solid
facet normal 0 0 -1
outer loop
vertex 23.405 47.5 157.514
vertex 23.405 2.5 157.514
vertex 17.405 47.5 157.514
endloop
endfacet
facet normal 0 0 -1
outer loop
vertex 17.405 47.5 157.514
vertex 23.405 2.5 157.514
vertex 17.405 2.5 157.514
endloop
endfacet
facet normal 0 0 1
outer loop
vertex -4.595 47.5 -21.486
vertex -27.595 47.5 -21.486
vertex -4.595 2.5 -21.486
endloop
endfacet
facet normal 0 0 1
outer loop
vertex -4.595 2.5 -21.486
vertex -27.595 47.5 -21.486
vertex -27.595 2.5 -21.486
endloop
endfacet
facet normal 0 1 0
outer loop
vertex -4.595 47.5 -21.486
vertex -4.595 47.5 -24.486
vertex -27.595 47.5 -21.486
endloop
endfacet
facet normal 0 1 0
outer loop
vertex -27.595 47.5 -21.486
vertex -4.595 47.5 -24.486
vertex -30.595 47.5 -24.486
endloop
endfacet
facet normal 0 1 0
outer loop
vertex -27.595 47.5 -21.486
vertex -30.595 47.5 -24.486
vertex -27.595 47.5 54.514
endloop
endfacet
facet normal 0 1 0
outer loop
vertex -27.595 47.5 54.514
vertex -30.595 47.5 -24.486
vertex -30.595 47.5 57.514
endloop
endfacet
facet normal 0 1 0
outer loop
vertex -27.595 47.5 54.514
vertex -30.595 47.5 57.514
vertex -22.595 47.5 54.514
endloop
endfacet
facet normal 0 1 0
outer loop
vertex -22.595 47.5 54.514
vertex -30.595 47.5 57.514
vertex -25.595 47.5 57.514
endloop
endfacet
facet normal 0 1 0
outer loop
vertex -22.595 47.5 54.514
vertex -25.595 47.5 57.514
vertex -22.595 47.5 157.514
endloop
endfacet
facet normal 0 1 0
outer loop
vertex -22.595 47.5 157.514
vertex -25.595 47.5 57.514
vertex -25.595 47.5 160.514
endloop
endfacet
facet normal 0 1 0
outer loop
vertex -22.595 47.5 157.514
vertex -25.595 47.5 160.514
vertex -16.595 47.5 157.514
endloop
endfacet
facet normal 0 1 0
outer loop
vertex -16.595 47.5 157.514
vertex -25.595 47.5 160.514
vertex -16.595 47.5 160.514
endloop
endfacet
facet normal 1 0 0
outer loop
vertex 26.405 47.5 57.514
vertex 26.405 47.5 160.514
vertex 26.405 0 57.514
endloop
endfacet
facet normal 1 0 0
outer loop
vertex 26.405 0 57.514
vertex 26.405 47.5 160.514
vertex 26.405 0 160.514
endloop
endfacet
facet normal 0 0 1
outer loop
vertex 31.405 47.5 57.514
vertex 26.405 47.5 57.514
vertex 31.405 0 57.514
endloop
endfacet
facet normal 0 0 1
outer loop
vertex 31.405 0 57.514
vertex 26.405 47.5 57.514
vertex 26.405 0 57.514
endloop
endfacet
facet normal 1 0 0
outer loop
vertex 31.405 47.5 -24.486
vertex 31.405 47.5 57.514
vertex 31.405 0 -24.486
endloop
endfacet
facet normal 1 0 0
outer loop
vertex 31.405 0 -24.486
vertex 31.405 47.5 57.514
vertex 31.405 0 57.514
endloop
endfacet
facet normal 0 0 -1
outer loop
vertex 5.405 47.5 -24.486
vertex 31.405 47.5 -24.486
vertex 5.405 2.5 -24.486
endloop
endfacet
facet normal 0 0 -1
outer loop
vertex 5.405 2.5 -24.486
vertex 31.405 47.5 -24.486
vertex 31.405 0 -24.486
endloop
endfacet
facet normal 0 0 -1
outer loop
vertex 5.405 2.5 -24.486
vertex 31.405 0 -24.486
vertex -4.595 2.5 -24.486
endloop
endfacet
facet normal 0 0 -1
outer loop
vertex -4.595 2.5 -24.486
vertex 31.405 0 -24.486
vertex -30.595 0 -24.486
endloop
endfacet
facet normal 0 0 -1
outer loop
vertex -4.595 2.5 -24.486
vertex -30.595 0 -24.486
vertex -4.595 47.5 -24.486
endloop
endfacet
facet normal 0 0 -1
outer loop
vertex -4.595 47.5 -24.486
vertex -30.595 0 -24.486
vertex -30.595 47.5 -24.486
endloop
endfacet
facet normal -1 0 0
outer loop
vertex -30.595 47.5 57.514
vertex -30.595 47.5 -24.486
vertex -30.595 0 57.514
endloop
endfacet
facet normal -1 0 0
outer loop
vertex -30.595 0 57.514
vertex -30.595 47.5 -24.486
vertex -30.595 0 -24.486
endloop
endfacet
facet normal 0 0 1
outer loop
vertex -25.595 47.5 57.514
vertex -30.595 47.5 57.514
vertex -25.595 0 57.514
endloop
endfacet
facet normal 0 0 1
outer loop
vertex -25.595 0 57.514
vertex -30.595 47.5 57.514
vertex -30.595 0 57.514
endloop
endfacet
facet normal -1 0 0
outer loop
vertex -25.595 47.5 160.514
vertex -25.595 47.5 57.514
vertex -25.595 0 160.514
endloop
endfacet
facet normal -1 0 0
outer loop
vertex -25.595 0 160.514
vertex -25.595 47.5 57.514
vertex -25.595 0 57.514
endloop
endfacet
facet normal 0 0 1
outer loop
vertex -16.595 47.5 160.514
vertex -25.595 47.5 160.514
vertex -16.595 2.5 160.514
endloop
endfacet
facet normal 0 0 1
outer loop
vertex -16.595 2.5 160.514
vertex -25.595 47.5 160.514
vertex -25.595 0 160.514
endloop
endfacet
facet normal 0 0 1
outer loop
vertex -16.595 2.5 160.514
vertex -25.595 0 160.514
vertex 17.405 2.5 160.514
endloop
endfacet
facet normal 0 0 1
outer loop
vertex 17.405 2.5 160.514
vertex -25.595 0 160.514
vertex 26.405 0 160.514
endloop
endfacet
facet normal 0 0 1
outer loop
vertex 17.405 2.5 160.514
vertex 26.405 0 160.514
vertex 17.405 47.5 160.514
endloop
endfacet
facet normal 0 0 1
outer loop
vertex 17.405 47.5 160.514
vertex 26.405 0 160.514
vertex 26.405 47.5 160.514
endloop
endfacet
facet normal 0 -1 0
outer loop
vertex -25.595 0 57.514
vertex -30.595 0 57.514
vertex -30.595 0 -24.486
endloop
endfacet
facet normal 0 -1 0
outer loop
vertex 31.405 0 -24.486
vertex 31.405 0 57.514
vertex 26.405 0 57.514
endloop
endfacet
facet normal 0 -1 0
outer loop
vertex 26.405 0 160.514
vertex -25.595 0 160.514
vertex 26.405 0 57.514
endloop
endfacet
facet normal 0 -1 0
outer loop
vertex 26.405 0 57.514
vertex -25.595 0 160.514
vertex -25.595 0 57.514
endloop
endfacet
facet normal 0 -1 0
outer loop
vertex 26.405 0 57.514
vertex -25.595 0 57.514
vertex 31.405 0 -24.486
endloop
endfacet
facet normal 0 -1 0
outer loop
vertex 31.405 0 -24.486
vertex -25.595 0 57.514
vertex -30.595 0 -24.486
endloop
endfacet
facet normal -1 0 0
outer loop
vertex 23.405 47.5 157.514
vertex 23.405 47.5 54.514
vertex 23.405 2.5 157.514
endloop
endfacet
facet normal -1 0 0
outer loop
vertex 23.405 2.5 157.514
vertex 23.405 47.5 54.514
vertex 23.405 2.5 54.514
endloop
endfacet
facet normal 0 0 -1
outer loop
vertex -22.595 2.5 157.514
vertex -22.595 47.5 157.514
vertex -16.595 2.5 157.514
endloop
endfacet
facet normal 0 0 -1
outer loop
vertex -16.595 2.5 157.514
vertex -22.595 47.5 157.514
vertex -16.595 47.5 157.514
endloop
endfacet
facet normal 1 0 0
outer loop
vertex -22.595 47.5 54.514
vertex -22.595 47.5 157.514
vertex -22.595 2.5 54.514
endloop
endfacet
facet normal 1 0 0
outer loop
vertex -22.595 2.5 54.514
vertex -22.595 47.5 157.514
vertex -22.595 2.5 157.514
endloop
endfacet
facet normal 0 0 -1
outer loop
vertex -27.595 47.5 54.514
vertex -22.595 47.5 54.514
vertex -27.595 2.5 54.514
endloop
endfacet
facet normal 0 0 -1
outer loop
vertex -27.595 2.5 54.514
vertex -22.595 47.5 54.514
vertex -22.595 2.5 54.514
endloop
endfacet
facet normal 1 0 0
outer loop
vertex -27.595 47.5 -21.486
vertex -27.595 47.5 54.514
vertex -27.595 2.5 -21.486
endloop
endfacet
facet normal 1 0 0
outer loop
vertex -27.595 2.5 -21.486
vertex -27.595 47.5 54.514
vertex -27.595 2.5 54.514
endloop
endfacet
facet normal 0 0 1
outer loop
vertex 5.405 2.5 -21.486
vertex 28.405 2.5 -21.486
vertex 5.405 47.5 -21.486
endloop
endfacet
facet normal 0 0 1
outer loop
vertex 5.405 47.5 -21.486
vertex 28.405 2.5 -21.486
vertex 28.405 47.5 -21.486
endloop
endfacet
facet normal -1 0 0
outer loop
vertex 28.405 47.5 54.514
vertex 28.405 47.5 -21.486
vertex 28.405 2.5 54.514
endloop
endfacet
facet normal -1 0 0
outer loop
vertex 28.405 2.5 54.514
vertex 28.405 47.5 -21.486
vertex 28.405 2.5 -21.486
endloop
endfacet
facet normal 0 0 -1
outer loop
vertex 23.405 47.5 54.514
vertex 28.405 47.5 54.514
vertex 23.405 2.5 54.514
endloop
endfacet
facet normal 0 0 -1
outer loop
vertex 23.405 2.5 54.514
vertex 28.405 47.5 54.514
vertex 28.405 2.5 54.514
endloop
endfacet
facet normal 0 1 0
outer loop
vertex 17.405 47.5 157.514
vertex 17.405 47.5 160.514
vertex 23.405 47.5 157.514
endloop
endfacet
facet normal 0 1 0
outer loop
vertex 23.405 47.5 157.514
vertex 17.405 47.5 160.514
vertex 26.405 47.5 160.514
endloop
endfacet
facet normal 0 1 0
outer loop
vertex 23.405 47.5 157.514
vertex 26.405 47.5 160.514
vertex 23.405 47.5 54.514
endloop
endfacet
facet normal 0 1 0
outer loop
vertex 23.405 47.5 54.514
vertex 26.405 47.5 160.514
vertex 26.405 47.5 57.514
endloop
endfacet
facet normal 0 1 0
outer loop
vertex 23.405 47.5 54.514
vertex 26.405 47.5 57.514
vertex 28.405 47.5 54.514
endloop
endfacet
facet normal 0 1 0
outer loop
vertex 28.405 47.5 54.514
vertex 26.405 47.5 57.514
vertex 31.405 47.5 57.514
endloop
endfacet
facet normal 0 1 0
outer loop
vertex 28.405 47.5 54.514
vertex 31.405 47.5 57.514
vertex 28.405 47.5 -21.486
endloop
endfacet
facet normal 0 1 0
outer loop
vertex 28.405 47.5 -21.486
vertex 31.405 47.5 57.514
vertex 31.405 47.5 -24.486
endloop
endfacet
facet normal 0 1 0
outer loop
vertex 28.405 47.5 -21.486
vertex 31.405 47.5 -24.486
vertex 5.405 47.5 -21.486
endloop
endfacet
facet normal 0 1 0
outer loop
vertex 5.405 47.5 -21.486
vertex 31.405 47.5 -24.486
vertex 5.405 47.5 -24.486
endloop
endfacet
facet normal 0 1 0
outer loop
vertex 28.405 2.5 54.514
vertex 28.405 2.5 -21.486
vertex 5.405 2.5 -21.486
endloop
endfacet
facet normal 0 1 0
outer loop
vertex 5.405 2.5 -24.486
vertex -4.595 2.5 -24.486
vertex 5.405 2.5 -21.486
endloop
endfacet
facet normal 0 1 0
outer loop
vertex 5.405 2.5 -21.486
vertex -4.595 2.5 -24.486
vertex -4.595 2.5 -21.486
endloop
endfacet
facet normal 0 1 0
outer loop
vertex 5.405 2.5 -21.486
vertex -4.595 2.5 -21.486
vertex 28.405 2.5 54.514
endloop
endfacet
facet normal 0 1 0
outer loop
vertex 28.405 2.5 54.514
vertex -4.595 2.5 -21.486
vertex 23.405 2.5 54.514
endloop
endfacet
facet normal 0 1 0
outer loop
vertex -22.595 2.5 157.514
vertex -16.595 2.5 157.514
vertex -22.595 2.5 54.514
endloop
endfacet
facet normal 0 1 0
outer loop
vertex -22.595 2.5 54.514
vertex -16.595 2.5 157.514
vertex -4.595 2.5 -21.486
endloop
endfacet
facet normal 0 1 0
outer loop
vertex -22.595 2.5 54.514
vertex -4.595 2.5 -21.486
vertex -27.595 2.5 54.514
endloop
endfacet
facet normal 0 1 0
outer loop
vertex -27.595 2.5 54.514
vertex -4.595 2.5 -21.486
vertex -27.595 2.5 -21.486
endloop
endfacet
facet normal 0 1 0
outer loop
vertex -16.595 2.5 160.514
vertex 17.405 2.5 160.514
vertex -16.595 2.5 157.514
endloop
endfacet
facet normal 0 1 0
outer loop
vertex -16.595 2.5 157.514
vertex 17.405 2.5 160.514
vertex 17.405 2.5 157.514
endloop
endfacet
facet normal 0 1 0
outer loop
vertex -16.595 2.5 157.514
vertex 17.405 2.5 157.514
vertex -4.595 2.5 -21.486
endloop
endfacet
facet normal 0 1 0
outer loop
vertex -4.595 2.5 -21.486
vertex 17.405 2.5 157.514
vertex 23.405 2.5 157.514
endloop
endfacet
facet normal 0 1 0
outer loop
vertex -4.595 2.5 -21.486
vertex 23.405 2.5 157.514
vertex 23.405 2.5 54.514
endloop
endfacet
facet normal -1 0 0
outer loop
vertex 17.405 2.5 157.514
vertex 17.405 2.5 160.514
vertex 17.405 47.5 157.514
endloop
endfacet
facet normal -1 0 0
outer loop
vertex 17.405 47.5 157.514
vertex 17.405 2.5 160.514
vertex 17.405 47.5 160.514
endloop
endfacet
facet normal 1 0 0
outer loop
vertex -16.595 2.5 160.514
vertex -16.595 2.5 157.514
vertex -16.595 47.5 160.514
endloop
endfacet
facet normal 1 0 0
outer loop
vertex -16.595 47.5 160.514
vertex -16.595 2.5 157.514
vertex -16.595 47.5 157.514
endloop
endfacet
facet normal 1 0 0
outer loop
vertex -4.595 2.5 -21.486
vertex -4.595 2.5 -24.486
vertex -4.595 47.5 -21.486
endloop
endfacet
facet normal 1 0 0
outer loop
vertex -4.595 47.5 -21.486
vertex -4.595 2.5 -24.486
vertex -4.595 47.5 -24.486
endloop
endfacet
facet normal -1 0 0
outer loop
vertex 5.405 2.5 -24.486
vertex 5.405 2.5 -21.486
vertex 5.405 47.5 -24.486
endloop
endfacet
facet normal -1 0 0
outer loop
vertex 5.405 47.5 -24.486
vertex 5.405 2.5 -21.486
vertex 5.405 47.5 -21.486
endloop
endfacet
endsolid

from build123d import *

# Parameters (mm, degrees)
SKETCH1_W           = 52
SKETCH1_H           = 103
SKETCH1_W_2         = 62
SKETCH1_H_2         = 82
BOSS_EXTRUDE1_DEPTH = 2.5
SKETCH2_W           = 3
SKETCH2_H           = 100
SKETCH2_H_2         = 76
SKETCH2_W_2         = 2
SKETCH2_H_3         = 3
SKETCH2_W_3         = 56
SKETCH2_W_4         = 46
BOSS_EXTRUDE2_DEPTH = 45
SKETCH4_W           = 10
SKETCH4_H           = 3
SKETCH4_W_2         = 34
CUT_EXTRUDE1_DEPTH  = 45


with BuildPart() as part:
    # Sketch1 → Boss-Extrude1 (new body)
    with BuildSketch(Plane(origin=(0, 0, 0), x_dir=(1, 0, 0), z_dir=(0, 1, 0))):
        with Locations((0.405405405, -109.013513514)):
            Rectangle(SKETCH1_W, SKETCH1_H)
        with Locations((0.405405405, -16.513513514)):
            Rectangle(SKETCH1_W_2, SKETCH1_H_2)
    extrude(amount=BOSS_EXTRUDE1_DEPTH)

    # Sketch2 → Boss-Extrude2 (add)
    with BuildSketch(Plane(origin=(0, 2.5, 0), x_dir=(1, 0, 0), z_dir=(0, 1, 0))):
        with Locations((-24.094594595, -107.513513514)):
            Rectangle(SKETCH2_W, SKETCH2_H)
        with Locations((24.905405405, -107.513513514)):
            Rectangle(SKETCH2_W, SKETCH2_H)
        with Locations((29.905405405, -16.513513514)):
            Rectangle(SKETCH2_W, SKETCH2_H_2)
        with Locations((-29.094594595, -16.513513514)):
            Rectangle(SKETCH2_W, SKETCH2_H_2)
        with Locations((-26.594594595, -56.013513514)):
            Rectangle(SKETCH2_W_2, SKETCH2_H_3)
        with Locations((-24.094594595, -56.013513514)):
            Rectangle(SKETCH2_W, SKETCH2_H_3)
        with Locations((-29.094594595, -56.013513514)):
            Rectangle(SKETCH2_W, SKETCH2_H_3)
        with Locations((29.905405405, -56.013513514)):
            Rectangle(SKETCH2_W, SKETCH2_H_3)
        with Locations((27.405405405, -56.013513514)):
            Rectangle(SKETCH2_W_2, SKETCH2_H_3)
        with Locations((24.905405405, -56.013513514)):
            Rectangle(SKETCH2_W, SKETCH2_H_3)
        with Locations((-29.094594595, 22.986486486)):
            Rectangle(SKETCH2_W, SKETCH2_H_3)
        with Locations((29.905405405, 22.986486486)):
            Rectangle(SKETCH2_W, SKETCH2_H_3)
        with Locations((0.405405405, 22.986486486)):
            Rectangle(SKETCH2_W_3, SKETCH2_H_3)
        with Locations((-24.094594595, -159.013513514)):
            Rectangle(SKETCH2_W, SKETCH2_H_3)
        with Locations((0.405405405, -159.013513514)):
            Rectangle(SKETCH2_W_4, SKETCH2_H_3)
        with Locations((24.905405405, -159.013513514)):
            Rectangle(SKETCH2_W, SKETCH2_H_3)
    extrude(amount=BOSS_EXTRUDE2_DEPTH)

    # Sketch4 → Cut-Extrude1 (cut)
    with BuildSketch(Plane(origin=(0, 47.5, 0), x_dir=(1, 0, 0), z_dir=(0, 1, 0))):
        with Locations((0.405405405, 22.986486486)):
            Rectangle(SKETCH4_W, SKETCH4_H)
        with Locations((0.405405405, -159.013513514)):
            Rectangle(SKETCH4_W_2, SKETCH4_H)
    extrude(amount=-CUT_EXTRUDE1_DEPTH, mode=Mode.SUBTRACT)


solid = part.part
